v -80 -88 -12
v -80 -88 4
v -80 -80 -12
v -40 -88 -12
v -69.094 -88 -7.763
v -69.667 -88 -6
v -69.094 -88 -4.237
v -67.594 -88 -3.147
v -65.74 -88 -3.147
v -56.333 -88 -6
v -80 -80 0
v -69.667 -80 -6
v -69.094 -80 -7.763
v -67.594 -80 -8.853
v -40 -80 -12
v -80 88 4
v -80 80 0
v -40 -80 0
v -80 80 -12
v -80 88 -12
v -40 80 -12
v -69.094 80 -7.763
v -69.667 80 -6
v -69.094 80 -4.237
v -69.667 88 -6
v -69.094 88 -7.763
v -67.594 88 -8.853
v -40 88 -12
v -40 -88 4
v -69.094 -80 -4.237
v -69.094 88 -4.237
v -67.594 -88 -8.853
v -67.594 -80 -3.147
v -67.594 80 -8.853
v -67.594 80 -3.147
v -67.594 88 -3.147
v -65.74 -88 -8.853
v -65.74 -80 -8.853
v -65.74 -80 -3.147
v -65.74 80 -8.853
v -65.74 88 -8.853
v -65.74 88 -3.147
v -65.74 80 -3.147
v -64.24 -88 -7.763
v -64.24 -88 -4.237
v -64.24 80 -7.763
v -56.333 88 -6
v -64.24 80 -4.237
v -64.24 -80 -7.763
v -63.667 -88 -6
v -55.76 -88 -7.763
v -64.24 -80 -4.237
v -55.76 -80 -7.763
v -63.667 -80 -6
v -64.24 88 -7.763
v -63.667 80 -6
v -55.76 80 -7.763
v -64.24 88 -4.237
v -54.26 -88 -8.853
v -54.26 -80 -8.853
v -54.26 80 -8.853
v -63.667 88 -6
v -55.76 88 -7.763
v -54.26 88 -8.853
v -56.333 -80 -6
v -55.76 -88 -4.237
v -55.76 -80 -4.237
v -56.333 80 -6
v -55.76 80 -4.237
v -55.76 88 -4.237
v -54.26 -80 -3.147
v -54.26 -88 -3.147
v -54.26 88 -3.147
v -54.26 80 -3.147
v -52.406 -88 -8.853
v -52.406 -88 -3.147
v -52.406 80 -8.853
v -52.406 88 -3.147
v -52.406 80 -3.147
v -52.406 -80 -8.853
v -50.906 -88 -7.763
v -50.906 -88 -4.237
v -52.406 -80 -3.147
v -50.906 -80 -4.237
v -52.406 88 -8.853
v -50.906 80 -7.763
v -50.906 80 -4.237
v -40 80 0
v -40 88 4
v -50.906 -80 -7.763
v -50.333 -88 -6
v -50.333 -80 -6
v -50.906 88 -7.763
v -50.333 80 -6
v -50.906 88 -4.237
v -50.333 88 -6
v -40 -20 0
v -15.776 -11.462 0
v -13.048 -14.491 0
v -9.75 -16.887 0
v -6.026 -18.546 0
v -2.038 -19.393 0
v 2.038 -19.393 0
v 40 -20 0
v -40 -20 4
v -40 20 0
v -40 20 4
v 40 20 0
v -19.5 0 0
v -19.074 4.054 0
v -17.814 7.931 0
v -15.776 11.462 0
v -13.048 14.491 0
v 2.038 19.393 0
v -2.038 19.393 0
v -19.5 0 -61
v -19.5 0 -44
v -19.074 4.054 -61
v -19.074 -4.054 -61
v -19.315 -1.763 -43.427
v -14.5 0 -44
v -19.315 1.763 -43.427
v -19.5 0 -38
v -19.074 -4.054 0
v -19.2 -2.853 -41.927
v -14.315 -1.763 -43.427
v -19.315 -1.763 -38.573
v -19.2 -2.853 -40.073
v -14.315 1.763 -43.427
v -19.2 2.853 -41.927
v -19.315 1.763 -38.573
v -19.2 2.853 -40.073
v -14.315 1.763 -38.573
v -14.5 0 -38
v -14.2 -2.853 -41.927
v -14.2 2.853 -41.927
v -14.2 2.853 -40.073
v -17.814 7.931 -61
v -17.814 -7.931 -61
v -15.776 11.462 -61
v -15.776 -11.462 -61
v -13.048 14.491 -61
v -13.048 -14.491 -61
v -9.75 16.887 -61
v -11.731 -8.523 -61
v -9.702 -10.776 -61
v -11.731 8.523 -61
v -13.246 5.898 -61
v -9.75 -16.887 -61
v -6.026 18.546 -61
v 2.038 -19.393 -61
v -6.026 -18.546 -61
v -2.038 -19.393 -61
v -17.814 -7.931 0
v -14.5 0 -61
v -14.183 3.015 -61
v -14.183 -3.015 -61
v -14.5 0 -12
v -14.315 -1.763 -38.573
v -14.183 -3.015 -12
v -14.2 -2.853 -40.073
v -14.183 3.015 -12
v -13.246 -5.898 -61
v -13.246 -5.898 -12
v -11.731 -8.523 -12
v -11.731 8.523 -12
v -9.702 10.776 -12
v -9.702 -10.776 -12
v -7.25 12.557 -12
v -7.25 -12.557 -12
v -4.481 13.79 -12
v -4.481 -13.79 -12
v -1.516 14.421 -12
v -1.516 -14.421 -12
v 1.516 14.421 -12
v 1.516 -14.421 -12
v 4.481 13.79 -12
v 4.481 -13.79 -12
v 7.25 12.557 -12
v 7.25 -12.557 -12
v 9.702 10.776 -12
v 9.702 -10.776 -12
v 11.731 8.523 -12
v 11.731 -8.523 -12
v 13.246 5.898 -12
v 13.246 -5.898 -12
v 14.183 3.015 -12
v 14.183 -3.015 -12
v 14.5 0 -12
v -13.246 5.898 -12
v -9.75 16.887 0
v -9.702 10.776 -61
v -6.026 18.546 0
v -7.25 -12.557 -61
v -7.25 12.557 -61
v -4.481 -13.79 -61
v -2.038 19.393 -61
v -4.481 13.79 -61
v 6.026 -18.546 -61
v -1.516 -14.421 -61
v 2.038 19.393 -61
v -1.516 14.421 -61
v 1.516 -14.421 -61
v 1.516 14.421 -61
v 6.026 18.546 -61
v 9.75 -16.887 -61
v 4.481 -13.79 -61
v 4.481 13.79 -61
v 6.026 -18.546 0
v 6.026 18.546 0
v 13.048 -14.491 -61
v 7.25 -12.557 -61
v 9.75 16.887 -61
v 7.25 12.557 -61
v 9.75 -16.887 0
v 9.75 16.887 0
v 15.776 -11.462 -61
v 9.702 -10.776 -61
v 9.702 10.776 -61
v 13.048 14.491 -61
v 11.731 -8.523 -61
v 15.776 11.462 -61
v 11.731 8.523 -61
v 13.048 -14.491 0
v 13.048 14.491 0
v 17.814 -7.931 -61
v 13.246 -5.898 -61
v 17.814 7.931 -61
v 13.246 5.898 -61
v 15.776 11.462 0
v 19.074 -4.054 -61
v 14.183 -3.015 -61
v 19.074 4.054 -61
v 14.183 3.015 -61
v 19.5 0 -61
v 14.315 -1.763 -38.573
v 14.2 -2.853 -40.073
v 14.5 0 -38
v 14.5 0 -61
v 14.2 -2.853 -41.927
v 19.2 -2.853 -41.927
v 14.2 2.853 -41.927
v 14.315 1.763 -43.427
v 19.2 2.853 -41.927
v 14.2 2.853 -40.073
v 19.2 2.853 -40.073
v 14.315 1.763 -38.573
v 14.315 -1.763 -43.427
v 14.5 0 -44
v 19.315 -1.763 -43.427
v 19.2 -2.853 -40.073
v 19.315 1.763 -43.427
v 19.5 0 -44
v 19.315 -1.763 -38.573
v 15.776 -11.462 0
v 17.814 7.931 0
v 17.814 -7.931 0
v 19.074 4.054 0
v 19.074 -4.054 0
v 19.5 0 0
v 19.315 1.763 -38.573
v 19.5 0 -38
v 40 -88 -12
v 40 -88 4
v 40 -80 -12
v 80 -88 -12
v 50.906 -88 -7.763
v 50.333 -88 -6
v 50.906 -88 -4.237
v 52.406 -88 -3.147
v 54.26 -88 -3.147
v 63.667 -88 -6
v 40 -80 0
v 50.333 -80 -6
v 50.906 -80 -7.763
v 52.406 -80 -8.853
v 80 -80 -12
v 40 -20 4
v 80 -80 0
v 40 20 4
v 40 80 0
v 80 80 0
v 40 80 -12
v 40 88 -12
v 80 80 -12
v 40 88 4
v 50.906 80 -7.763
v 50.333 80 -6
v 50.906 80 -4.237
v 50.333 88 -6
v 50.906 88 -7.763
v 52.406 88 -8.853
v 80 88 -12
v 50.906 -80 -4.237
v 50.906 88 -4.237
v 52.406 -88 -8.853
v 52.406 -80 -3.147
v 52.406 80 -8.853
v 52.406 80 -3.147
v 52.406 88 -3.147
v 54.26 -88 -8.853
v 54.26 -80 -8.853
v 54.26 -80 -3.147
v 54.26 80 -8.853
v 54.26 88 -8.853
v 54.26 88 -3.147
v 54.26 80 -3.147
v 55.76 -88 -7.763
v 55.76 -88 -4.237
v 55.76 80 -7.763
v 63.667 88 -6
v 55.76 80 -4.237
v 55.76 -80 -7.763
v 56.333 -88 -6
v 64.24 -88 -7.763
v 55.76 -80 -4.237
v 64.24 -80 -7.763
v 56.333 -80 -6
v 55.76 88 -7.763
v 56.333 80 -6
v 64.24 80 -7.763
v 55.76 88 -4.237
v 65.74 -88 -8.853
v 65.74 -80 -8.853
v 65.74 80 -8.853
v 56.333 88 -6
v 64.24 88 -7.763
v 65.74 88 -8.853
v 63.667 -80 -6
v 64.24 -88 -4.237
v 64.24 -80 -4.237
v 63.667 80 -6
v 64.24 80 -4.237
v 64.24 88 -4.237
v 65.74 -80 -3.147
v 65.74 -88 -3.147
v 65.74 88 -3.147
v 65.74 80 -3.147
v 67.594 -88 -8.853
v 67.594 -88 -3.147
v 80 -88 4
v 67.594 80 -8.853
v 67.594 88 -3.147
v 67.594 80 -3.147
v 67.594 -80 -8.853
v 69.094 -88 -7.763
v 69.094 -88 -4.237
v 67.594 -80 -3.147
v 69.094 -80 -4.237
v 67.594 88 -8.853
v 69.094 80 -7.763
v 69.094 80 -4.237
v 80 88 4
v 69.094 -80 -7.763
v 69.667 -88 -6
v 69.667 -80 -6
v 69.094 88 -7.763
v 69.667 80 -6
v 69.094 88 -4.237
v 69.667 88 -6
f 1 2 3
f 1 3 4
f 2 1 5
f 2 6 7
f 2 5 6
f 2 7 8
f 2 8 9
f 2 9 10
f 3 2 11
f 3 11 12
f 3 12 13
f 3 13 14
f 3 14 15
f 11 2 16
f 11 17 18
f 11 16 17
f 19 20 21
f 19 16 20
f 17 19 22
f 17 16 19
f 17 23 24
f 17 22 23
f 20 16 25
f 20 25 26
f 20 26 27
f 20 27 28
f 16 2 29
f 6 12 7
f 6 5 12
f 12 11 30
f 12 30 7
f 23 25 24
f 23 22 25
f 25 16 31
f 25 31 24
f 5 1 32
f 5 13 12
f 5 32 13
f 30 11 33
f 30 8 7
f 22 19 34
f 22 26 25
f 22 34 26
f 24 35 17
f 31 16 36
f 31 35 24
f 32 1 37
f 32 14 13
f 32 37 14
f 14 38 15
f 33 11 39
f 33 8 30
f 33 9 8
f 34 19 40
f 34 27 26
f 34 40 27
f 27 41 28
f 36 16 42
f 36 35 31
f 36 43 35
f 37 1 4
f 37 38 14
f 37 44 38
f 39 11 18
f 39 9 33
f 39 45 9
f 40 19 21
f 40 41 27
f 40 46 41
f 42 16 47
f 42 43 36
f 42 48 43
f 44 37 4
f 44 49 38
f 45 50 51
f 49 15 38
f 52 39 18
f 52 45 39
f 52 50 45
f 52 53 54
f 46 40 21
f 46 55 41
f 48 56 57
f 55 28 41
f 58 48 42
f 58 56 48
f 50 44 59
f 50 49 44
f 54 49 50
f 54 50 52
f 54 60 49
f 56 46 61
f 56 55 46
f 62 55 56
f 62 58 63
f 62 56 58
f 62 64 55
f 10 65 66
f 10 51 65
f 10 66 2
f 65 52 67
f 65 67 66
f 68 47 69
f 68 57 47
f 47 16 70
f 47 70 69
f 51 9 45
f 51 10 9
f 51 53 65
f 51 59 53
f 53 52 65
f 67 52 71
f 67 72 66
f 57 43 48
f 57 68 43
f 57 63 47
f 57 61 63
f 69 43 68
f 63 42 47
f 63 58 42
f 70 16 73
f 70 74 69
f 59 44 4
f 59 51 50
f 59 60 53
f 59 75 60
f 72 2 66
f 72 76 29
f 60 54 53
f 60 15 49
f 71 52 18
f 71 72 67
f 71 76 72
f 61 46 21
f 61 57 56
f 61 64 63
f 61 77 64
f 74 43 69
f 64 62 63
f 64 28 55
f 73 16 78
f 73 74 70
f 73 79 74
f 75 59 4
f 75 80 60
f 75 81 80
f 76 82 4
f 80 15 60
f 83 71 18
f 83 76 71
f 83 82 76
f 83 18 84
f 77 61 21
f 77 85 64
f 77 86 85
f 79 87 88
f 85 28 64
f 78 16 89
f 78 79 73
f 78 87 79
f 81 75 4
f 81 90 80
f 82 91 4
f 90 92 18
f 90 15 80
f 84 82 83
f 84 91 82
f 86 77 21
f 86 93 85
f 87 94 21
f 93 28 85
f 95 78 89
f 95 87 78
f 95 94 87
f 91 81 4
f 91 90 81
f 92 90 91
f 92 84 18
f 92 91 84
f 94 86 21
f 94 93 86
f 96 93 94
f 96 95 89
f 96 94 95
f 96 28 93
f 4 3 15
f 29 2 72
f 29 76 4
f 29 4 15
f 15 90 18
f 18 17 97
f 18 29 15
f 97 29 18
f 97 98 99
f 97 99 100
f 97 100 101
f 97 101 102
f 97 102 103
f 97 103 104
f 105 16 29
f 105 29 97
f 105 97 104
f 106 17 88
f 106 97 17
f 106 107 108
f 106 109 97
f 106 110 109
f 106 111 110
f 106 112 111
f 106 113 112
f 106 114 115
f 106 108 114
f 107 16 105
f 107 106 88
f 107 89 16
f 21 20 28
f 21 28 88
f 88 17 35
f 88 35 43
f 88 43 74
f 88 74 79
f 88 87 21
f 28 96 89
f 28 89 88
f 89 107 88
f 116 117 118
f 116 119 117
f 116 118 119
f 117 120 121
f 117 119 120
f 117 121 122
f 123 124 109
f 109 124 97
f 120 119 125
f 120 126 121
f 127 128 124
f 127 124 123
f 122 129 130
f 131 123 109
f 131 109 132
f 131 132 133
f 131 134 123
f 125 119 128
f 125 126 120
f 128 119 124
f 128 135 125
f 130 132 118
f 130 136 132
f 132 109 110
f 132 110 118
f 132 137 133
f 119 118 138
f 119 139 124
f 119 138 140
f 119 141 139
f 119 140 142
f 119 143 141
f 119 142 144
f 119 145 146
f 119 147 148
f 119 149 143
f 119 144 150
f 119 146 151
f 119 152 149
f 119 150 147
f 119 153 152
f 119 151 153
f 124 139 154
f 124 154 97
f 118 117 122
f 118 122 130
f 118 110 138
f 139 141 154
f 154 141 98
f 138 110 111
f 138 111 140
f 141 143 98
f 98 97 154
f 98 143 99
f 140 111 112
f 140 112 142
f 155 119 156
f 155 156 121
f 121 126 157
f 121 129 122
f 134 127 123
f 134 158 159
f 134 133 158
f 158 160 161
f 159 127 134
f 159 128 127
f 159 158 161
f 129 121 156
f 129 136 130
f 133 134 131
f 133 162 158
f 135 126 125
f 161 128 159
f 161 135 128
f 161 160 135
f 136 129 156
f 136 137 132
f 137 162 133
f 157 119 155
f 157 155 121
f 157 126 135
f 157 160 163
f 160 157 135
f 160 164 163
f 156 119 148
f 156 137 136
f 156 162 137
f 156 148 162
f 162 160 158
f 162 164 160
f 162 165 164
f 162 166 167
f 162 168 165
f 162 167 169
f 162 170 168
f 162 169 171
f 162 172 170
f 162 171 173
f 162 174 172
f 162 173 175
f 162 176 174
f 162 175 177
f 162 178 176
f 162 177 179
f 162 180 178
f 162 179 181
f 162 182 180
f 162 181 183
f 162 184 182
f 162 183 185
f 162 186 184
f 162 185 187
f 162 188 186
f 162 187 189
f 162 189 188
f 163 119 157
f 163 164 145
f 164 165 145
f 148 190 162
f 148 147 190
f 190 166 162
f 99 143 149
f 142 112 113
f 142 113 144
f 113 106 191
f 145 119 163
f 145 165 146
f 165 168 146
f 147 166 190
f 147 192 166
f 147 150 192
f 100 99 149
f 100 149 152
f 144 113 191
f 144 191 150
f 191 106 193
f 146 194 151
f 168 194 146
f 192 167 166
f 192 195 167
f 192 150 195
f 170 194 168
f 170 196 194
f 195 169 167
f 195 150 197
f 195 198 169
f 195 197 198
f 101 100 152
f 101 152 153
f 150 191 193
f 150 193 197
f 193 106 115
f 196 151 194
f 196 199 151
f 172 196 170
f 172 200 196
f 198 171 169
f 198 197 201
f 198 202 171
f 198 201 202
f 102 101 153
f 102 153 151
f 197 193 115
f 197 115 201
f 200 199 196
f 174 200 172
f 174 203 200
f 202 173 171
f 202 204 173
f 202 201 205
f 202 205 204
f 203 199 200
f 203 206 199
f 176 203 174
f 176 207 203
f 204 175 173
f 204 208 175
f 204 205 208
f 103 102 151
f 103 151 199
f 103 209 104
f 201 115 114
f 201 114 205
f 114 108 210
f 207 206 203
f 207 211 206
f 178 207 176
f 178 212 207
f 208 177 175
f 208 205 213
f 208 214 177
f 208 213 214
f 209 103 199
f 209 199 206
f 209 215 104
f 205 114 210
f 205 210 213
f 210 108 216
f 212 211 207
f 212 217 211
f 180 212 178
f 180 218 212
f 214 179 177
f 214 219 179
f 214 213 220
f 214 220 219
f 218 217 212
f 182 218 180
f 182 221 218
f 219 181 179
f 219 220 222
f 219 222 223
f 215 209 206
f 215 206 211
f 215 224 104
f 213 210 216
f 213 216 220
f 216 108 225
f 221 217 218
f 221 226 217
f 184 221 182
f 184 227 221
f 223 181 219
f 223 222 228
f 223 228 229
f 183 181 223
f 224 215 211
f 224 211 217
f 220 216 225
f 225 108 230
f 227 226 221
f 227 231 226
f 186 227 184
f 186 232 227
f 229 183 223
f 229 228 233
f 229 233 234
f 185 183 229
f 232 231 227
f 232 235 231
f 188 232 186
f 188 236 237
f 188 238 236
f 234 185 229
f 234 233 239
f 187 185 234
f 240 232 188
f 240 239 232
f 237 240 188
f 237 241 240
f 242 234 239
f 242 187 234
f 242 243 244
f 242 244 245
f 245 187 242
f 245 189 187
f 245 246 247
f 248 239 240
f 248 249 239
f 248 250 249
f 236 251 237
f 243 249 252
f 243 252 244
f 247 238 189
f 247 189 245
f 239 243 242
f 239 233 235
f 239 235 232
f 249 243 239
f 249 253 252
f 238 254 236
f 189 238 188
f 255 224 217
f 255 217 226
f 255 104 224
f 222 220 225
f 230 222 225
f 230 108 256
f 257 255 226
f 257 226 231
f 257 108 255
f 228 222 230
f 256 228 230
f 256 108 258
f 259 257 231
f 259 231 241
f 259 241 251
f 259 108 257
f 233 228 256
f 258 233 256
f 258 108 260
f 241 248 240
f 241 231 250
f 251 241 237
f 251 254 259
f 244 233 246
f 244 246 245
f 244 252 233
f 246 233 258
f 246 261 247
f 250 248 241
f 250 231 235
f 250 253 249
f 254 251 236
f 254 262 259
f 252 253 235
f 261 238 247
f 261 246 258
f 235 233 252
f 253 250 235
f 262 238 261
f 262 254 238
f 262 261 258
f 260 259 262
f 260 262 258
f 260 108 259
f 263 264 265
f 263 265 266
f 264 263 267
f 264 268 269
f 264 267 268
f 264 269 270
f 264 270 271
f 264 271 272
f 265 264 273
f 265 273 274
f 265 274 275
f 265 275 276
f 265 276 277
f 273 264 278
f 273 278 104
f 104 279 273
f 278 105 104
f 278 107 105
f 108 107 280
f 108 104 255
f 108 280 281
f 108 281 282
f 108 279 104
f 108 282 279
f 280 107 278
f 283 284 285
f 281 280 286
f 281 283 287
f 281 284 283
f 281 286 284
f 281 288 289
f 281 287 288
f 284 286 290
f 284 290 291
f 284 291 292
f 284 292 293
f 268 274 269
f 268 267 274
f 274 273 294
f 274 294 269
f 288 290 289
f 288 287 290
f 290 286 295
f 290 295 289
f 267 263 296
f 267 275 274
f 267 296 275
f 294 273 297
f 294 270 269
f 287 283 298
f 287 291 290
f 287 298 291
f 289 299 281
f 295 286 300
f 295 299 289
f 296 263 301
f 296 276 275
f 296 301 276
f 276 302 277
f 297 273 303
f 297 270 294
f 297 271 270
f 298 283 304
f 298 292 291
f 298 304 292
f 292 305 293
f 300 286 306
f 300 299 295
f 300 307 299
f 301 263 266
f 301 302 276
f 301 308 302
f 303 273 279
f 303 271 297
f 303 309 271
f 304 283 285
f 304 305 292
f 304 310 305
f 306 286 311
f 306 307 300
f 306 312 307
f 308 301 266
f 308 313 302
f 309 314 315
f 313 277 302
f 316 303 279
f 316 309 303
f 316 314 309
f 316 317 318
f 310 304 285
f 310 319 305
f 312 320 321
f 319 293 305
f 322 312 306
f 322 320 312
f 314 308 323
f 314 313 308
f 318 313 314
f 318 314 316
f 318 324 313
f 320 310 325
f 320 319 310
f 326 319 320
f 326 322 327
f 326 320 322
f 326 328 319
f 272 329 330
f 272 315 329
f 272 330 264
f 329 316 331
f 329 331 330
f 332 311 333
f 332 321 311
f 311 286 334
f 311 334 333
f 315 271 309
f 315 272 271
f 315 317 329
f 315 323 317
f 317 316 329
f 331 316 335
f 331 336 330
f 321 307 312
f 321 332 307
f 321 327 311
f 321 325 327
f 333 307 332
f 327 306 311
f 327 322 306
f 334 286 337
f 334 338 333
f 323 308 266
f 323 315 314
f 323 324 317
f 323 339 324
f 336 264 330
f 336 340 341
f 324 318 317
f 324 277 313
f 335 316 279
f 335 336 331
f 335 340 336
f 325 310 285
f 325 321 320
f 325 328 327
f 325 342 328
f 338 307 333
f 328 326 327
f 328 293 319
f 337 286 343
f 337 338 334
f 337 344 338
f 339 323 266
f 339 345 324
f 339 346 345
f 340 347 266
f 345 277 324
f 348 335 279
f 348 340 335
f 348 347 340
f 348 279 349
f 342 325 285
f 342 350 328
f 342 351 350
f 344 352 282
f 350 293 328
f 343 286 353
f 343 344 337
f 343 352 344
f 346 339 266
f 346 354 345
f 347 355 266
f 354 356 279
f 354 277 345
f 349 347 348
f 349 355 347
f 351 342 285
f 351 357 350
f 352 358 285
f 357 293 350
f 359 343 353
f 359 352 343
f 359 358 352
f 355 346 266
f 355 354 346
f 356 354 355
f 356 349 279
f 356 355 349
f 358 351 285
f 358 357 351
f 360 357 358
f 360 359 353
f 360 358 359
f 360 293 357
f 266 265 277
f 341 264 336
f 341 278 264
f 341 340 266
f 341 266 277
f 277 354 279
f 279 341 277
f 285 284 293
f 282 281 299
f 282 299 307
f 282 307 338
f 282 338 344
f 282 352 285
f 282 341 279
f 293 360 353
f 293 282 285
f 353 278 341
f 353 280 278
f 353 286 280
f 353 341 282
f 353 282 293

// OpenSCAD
vnitrni_prumer = 29;
vnejsi_prumer  = 39;
tloustka       =  4;
vyska          = 65;
delka_tyce     = 50;
sirka_ramene   = 40;

module uchytka() {
    difference() {
        cube([sirka_ramene, 0.2*sirka_ramene, 3*tloustka]);
        translate( [ (1/3)*sirka_ramene, 0.3*sirka_ramene, 1.5*tloustka ] )
            rotate( [90, 0, 0] )
                cylinder( d=1.5*tloustka, h=0.4*sirka_ramene);

        translate( [ (2/3)*sirka_ramene, 0.3*sirka_ramene, 1.5*tloustka ] )
            rotate( [90, 0, 0] )
                cylinder( d=1.5*tloustka, h=0.4*sirka_ramene);
    }
}

module zakladna() {
    translate( [0, -20, 0] ) cube([ 2*(sirka_ramene), sirka_ramene, tloustka ] );
    translate( [-2*sirka_ramene, -20, 0] ) cube([ 2*(sirka_ramene), sirka_ramene, tloustka ] );

    translate( [-80, -20, 0] ) cube([ sirka_ramene, 108, tloustka ] );
    translate( [-80, -88, 0] ) cube([ sirka_ramene, 108, tloustka ] );
    translate( [sirka_ramene, -20, 0]  ) cube([ sirka_ramene, 108, tloustka ] );
    translate( [sirka_ramene, -88, 0]  ) cube([ sirka_ramene, 108, tloustka ] );
}

module nasada_na_tyc() {
    translate([ 0, 0, -(vyska - tloustka) ] ) {
        difference() {
            union() {
                difference() {
                    cylinder( d = vnejsi_prumer, h = vyska );
                    translate( [0, 0, -1] ) cylinder( d = vnitrni_prumer, h = delka_tyce );
                }
            }
            translate( [500, 0, 20] ) rotate([0, -90, 0] ) cylinder( d=6, h=1000);
        }
    }
}

nasada_na_tyc();
zakladna();
translate([sirka_ramene, 2*sirka_ramene, -3*tloustka]) uchytka();
translate([sirka_ramene, -2*sirka_ramene-2*tloustka, -3*tloustka]) uchytka();
translate([- 2*sirka_ramene, 2*sirka_ramene, -3*tloustka]) uchytka();
translate([- 2*sirka_ramene, -2*sirka_ramene-2*tloustka, -3*tloustka]) uchytka();
